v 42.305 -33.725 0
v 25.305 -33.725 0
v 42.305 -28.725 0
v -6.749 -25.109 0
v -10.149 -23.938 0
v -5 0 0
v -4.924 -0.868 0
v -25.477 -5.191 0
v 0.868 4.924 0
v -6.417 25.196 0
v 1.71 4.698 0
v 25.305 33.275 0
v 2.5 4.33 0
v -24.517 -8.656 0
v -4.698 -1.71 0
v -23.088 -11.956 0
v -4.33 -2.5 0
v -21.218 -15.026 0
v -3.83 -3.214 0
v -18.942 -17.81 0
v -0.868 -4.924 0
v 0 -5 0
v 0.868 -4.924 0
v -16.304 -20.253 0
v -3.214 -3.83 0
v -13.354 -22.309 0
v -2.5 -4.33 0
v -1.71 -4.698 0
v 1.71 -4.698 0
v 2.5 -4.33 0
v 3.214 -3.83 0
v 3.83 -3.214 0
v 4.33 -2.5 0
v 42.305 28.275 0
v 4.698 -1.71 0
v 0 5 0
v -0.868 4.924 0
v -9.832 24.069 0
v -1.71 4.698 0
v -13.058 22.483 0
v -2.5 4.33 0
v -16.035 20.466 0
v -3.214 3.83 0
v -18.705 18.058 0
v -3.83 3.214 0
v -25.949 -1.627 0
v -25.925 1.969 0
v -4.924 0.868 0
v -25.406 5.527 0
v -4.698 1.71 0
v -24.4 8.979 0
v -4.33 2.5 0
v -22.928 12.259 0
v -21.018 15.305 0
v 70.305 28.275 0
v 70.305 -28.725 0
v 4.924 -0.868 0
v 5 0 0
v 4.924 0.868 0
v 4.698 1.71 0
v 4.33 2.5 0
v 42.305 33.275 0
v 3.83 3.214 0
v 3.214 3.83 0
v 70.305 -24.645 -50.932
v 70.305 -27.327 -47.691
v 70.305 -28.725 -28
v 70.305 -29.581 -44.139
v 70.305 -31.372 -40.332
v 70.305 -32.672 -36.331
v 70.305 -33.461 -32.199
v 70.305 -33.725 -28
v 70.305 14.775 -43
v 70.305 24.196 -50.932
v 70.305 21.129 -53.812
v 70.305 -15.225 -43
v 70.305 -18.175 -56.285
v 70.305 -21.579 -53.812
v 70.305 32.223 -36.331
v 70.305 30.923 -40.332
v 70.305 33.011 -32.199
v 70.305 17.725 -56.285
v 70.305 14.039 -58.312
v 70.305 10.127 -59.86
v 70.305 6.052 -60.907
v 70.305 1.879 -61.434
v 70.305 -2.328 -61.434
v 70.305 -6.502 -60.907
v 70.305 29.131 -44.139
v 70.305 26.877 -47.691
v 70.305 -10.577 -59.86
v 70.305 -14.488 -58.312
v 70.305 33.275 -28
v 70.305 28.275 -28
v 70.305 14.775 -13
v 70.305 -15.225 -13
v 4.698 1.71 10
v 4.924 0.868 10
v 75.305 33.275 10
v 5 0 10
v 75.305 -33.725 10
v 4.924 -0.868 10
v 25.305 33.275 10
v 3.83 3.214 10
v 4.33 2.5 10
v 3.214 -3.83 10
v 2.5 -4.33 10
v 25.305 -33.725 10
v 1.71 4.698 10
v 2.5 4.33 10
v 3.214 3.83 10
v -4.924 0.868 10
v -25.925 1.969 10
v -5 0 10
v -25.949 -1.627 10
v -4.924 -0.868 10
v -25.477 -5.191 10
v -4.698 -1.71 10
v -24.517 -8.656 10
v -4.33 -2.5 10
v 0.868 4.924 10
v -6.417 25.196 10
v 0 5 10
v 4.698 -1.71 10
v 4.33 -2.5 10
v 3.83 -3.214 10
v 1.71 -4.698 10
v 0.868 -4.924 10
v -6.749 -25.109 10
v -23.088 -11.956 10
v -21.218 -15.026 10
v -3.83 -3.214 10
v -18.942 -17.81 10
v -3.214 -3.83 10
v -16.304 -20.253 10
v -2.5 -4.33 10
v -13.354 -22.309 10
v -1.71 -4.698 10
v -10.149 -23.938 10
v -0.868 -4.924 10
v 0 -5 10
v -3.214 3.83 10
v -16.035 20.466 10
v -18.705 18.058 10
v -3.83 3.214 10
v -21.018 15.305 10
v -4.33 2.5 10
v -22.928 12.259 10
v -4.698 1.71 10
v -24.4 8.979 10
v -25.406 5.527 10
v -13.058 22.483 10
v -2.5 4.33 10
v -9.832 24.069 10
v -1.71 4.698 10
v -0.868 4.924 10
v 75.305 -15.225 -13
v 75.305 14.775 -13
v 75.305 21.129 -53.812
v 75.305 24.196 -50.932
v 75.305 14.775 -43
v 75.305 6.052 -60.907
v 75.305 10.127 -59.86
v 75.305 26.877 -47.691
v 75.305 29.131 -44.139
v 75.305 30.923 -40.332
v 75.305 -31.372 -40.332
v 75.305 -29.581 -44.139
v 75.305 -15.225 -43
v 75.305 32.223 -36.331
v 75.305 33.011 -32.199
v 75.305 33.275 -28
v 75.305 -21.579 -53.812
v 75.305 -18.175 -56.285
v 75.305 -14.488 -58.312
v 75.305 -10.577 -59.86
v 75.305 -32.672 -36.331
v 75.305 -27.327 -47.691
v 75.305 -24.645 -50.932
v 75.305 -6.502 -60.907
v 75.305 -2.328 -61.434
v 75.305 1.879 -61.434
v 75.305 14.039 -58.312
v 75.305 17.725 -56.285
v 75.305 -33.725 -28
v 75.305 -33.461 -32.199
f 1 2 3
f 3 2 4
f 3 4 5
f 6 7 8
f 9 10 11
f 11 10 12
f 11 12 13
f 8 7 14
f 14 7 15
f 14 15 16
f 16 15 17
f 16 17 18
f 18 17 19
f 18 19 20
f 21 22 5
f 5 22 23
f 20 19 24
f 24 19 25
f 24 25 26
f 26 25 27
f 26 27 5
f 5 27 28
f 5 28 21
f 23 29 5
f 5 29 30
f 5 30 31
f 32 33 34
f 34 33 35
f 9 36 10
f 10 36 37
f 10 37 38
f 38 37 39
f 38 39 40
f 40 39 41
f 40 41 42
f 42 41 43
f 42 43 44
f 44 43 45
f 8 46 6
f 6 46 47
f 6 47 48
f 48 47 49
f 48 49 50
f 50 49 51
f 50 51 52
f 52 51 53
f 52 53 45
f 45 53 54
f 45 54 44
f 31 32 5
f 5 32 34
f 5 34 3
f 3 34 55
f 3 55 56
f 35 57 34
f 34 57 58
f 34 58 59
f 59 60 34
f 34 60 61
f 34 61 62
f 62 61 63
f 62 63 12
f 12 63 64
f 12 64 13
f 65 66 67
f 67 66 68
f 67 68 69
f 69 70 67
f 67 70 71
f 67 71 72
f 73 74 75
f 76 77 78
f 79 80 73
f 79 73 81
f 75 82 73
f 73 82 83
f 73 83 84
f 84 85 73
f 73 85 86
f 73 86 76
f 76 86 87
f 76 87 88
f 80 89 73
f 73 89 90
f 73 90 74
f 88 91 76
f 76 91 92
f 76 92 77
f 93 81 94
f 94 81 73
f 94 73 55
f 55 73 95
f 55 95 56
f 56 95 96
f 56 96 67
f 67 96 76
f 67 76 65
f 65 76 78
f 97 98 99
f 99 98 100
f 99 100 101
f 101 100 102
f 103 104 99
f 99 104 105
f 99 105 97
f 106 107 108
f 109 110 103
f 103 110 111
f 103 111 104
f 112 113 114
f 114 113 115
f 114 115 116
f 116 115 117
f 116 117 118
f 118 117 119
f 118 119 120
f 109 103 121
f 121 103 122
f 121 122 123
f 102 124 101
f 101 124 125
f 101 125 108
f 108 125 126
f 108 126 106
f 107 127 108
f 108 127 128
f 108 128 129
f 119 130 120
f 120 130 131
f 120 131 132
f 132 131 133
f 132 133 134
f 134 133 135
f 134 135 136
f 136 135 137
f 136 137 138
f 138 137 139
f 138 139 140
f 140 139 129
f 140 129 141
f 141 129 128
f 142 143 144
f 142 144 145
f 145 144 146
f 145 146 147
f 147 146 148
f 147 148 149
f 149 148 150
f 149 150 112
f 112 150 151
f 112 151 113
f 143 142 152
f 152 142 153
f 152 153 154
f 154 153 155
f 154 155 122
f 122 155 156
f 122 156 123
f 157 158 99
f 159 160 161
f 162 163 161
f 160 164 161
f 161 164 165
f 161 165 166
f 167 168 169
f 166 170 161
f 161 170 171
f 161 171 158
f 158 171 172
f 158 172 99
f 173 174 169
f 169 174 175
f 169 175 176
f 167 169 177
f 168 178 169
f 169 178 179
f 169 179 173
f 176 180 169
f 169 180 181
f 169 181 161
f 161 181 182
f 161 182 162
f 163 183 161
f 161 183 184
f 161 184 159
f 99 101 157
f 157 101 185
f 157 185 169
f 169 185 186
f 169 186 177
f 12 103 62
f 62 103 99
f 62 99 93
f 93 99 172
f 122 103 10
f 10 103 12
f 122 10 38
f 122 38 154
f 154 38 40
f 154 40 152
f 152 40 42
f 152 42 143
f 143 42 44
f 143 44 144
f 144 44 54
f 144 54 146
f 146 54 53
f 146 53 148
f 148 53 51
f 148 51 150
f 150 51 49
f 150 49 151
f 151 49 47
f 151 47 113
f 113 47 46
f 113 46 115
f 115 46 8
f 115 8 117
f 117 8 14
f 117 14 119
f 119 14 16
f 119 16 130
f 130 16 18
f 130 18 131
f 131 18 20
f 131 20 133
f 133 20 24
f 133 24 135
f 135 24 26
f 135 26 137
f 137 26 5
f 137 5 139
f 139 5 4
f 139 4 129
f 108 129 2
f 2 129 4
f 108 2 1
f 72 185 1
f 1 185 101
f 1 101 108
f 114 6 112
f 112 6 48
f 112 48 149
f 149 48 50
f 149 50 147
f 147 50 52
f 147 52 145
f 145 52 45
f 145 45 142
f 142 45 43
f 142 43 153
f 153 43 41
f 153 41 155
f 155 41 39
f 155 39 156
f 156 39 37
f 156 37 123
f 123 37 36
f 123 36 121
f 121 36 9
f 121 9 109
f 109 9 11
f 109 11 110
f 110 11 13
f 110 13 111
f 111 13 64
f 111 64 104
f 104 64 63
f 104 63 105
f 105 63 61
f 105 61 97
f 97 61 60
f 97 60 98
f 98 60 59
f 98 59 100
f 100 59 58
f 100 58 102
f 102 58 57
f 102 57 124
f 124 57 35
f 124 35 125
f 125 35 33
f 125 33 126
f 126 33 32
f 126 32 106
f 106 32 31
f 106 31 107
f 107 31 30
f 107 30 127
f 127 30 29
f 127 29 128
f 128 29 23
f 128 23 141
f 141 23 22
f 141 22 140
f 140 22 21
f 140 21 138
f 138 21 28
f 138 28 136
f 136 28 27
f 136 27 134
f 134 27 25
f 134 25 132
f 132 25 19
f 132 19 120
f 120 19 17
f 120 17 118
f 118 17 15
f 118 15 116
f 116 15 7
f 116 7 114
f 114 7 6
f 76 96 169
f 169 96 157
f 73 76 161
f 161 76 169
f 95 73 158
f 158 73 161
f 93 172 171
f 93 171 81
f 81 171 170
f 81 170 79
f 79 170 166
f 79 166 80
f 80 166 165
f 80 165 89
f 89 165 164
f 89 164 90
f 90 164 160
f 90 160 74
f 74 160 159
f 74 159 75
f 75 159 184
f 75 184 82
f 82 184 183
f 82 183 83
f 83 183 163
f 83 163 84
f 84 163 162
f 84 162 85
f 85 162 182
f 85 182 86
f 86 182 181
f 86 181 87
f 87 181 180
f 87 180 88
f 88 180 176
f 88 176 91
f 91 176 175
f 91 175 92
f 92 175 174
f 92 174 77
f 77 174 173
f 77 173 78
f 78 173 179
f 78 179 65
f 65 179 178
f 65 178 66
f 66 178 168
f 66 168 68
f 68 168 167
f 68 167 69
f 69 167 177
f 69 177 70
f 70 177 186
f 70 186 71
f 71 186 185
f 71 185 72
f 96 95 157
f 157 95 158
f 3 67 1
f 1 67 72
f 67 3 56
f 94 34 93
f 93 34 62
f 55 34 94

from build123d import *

# Parameters (mm, degrees)
SKETCH1_R           = 5
BOSS_EXTRUDE1_DEPTH = 10
SKETCH2_W           = 30
SKETCH2_H           = 30
BOSS_EXTRUDE2_DEPTH = 5
BOSS_EXTRUDE3_DEPTH = 5


with BuildPart() as part:
    # Sketch1 → Boss-Extrude1 (new body)
    with BuildSketch(Plane.XY):
        with BuildLine():
            Line((75.304851692, -33.724889915), (25.304851692, -33.724889915))
            Line((25.304851692, -33.724889915), (-6.749247564, -25.10871676))
            ThreePointArc((-6.749247564, -25.10871676), (-25.999433698, 0.171602352), (-6.417227169, 25.195618577))
            Line((-6.417227169, 25.195618577), (25.304851692, 33.275110085))
            Line((25.304851692, 33.275110085), (75.304851692, 33.275110085))
            Line((75.304851692, 33.275110085), (75.304851692, -33.724889915))
        make_face()
        Circle(SKETCH1_R, mode=Mode.SUBTRACT)
    extrude(amount=BOSS_EXTRUDE1_DEPTH)

    # Sketch2 → Boss-Extrude2 (add)
    with BuildSketch(Plane(origin=(75.304851692, 0, 0), x_dir=(0, 0, -1), z_dir=(1, 0, 0))):
        with BuildLine():
            Line((28, 33.275110085), (0, 33.275110085))
            Line((0, 33.275110085), (0, -33.724889915))
            Line((0, -33.724889915), (28, -33.724889915))
            ThreePointArc((28, -33.724889915), (61.5, -0.224889915), (28, 33.275110085))
        make_face()
        with Locations((28, -0.224889915)):
            Rectangle(SKETCH2_W, SKETCH2_H, mode=Mode.SUBTRACT)
    extrude(amount=-BOSS_EXTRUDE2_DEPTH)

    # Sketch3 → Boss-Extrude3 (add)
    with BuildSketch(Plane.XZ.offset(33.724889915)):
        Polygon((70.304851692, -28), (42.304851692, 0), (70.304851692, 0), align=None)
    boss_extrude3 = extrude(amount=-BOSS_EXTRUDE3_DEPTH)

    # Mirror1: Boss-Extrude3 across plane
    add(boss_extrude3.mirror(Plane.ZX.offset(-0.224889915)))


solid = part.part
